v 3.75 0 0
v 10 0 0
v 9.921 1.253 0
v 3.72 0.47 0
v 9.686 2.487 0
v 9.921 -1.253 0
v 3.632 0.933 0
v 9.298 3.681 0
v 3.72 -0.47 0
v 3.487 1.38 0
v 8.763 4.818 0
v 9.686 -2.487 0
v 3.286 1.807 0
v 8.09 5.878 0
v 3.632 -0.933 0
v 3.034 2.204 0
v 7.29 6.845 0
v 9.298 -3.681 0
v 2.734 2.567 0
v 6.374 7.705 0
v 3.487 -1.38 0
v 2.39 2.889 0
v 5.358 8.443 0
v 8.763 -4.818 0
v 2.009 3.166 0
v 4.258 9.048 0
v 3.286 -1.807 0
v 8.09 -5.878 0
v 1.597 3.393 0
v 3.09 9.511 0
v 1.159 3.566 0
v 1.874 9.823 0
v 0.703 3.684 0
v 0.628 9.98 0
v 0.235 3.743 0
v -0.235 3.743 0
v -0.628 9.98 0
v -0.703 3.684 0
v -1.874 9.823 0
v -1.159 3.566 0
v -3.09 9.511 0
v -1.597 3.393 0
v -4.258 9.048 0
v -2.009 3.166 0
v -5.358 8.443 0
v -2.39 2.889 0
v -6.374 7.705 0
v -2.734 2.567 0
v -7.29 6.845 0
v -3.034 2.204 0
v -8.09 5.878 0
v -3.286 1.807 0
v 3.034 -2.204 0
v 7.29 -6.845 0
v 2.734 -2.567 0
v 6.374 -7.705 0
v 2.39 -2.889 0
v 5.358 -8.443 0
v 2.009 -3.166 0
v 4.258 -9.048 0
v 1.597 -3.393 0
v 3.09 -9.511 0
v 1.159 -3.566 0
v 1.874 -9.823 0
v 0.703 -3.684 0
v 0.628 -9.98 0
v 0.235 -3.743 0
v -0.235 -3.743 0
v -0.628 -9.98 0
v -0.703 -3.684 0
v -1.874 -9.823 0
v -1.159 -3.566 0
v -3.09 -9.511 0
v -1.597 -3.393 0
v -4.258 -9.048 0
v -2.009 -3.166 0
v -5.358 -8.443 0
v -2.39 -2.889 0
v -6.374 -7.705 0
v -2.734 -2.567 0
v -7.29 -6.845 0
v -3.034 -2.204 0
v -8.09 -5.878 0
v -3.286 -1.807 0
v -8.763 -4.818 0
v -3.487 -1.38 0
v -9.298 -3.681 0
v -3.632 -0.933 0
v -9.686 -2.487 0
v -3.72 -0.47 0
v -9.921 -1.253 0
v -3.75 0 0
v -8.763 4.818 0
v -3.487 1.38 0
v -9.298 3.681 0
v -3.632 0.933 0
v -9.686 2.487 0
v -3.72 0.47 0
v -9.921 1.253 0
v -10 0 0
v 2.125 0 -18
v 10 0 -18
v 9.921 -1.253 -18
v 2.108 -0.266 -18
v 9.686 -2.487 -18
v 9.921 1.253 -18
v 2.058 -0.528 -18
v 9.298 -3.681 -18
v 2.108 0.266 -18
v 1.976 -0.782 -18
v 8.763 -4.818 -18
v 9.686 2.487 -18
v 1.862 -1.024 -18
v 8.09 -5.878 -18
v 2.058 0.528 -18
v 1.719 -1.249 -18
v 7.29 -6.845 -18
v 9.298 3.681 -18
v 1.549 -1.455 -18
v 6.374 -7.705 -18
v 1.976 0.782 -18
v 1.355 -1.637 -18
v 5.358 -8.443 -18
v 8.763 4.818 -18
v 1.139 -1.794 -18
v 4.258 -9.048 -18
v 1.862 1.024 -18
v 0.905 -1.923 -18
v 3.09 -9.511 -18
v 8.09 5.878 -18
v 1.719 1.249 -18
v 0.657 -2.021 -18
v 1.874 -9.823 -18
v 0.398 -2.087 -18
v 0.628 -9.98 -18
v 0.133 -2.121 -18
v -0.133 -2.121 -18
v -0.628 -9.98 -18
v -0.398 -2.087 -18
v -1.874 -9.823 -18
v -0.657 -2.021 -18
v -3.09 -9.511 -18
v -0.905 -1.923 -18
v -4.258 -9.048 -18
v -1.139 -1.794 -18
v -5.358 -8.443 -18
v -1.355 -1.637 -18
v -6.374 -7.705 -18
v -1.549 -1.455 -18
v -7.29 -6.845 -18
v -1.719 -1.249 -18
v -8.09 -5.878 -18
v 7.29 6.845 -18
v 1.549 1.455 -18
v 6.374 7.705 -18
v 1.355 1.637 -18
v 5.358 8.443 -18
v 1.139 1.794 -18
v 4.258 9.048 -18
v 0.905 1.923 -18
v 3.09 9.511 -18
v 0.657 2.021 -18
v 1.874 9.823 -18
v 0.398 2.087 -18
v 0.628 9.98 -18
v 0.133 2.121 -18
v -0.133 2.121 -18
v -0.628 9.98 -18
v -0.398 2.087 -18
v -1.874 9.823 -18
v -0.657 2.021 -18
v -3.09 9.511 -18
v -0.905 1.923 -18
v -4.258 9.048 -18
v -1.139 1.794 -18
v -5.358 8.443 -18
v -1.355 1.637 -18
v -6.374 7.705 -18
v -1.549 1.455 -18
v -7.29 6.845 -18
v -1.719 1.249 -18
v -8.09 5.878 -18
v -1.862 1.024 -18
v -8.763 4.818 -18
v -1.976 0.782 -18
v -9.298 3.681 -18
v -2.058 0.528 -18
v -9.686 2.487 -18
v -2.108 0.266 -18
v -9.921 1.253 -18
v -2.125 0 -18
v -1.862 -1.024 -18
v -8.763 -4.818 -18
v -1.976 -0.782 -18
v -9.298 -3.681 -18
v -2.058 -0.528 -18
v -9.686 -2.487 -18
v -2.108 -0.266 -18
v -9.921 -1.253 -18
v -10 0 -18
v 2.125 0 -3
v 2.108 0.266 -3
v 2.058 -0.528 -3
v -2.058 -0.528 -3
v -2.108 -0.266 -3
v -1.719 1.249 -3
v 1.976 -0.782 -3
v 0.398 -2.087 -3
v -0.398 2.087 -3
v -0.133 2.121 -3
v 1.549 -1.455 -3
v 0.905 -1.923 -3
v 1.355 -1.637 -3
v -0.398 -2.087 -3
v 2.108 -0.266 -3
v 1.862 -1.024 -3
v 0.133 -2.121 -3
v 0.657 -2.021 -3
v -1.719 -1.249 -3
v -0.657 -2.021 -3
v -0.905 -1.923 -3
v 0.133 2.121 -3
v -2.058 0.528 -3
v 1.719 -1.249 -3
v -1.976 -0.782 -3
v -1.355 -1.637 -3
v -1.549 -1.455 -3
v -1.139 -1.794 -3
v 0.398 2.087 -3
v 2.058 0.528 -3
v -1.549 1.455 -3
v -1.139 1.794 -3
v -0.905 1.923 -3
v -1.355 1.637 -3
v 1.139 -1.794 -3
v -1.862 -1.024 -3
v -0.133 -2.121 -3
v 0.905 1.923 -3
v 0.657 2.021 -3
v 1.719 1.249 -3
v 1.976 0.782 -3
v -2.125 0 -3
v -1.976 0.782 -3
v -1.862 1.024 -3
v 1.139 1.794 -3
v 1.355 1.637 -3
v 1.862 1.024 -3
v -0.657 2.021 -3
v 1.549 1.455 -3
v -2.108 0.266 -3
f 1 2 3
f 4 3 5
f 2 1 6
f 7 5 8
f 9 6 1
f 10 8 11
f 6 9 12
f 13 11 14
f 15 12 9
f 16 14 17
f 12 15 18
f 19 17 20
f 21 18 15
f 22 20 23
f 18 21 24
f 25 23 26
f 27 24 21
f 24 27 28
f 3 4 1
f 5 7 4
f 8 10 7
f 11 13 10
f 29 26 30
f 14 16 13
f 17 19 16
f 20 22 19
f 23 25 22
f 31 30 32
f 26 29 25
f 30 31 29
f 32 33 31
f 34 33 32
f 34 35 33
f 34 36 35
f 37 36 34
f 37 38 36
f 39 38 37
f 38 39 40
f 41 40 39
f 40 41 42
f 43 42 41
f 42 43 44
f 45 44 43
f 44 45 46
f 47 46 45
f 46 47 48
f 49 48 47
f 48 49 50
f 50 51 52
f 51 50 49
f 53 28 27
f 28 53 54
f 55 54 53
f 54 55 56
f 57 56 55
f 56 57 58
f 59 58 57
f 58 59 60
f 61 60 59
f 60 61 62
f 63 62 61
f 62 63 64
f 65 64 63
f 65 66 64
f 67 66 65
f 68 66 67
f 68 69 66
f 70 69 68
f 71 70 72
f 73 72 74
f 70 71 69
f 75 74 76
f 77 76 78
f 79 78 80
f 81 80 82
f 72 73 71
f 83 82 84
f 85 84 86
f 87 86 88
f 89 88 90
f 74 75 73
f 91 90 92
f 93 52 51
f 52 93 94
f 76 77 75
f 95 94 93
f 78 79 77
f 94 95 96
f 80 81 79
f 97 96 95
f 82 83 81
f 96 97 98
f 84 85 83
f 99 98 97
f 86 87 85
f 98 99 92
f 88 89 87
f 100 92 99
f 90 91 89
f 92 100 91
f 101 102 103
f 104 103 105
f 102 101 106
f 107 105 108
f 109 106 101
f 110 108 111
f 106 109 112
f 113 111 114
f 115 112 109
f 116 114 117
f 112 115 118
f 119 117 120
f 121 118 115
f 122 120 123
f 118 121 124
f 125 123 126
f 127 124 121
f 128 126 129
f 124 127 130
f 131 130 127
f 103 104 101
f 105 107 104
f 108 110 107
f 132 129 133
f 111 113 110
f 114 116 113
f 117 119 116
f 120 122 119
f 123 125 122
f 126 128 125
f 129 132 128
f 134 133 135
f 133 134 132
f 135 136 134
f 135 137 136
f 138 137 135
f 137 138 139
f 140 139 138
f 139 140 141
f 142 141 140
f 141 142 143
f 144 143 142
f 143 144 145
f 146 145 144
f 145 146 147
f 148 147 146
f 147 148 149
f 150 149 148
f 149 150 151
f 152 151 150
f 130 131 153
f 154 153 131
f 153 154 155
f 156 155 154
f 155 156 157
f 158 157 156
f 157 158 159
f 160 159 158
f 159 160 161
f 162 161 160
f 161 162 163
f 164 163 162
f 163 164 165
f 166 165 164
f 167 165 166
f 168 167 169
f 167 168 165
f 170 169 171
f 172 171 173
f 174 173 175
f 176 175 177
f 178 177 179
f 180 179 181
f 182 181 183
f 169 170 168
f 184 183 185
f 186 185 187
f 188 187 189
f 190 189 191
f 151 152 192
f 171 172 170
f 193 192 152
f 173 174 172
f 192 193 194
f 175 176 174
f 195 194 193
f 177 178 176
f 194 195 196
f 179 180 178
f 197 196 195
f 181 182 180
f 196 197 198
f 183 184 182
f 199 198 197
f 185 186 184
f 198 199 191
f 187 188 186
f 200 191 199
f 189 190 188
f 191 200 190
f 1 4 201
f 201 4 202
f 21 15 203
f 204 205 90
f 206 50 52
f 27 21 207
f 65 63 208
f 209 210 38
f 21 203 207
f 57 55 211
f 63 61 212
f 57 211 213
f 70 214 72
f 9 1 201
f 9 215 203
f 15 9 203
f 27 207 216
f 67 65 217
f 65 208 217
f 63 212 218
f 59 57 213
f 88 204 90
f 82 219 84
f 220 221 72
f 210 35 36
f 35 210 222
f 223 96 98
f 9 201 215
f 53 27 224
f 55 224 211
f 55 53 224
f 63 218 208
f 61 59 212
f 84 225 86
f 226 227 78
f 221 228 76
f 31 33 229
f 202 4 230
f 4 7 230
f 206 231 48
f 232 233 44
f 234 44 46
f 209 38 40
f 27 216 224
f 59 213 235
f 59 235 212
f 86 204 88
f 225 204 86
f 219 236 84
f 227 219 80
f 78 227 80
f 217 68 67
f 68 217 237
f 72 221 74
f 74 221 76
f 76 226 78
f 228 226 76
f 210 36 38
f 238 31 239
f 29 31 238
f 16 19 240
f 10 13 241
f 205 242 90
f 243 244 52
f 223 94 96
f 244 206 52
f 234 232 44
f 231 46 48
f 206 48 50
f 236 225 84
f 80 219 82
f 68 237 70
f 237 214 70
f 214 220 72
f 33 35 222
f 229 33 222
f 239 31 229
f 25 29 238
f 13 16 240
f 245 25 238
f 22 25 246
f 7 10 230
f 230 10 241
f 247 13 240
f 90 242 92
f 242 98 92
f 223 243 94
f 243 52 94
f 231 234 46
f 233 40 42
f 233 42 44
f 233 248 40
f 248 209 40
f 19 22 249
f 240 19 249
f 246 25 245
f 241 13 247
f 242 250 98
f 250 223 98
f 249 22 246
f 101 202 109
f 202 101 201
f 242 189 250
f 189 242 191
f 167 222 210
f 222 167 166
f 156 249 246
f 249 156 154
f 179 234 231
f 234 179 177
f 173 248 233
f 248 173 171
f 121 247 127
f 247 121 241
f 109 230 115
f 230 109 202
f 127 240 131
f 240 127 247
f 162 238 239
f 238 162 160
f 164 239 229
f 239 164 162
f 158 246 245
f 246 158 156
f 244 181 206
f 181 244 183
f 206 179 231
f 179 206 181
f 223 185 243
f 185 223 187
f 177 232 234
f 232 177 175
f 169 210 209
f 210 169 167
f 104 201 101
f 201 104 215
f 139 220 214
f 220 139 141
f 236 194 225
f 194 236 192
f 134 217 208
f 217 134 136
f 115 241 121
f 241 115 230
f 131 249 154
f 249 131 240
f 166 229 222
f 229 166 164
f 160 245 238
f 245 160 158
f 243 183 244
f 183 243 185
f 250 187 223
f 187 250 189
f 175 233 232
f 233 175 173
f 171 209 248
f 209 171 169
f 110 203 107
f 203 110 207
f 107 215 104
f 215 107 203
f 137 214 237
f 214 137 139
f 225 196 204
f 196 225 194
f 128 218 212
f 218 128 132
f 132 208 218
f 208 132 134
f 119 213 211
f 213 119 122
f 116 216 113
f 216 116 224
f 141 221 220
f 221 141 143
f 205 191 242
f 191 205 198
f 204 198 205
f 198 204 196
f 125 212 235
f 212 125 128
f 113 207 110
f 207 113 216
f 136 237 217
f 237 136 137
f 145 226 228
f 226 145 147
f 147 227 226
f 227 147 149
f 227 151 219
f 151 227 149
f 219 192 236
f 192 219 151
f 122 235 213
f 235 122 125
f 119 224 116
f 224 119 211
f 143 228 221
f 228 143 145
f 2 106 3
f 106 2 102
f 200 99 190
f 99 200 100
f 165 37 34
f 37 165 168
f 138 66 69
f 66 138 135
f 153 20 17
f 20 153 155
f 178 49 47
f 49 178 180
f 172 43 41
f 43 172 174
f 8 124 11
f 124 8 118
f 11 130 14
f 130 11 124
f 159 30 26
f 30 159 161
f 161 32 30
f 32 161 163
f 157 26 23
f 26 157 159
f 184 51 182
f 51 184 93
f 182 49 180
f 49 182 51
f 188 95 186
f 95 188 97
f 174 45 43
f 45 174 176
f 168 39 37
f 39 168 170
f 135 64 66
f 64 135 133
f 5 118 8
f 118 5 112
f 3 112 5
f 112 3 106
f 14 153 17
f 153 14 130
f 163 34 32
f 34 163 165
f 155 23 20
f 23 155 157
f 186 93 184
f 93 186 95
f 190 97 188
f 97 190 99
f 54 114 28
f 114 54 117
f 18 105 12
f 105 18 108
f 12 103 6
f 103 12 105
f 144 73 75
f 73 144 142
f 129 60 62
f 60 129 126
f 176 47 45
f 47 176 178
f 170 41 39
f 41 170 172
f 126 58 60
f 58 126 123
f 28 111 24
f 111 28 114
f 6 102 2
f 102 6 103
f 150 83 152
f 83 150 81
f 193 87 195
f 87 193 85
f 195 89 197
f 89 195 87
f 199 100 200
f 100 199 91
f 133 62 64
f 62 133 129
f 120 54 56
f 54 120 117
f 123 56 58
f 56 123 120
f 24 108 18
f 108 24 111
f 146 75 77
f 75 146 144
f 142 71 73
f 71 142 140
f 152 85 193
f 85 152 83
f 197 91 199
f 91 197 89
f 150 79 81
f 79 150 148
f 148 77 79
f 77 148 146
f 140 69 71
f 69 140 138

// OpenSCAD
$fn = 50;


difference() {
	union() {
		translate(v = [0, 0, -18.0000000000]) {
			cylinder(h = 18, r = 10.0000000000);
		}
		cylinder(h = 0, r = 19.0000000000);
	}
	union() {
		translate(v = [0, 0, 0]) {
			rotate(a = [0, 0, 0]) {
				difference() {
					union() {
						#translate(v = [0, 0, -18.0000000000]) {
							cylinder(h = 18, r = 2.0000000000);
						}
						#translate(v = [0, 0, -3]) {
							cylinder(h = 3, r1 = 2.1250000000, r2 = 3.7500000000);
						}
						#translate(v = [0, 0, -18.0000000000]) {
							cylinder(h = 18, r = 2.1250000000);
						}
						#translate(v = [0, 0, -18.0000000000]) {
							cylinder(h = 18, r = 2.0000000000);
						}
					}
					union();
				}
			}
		}
	}
}
